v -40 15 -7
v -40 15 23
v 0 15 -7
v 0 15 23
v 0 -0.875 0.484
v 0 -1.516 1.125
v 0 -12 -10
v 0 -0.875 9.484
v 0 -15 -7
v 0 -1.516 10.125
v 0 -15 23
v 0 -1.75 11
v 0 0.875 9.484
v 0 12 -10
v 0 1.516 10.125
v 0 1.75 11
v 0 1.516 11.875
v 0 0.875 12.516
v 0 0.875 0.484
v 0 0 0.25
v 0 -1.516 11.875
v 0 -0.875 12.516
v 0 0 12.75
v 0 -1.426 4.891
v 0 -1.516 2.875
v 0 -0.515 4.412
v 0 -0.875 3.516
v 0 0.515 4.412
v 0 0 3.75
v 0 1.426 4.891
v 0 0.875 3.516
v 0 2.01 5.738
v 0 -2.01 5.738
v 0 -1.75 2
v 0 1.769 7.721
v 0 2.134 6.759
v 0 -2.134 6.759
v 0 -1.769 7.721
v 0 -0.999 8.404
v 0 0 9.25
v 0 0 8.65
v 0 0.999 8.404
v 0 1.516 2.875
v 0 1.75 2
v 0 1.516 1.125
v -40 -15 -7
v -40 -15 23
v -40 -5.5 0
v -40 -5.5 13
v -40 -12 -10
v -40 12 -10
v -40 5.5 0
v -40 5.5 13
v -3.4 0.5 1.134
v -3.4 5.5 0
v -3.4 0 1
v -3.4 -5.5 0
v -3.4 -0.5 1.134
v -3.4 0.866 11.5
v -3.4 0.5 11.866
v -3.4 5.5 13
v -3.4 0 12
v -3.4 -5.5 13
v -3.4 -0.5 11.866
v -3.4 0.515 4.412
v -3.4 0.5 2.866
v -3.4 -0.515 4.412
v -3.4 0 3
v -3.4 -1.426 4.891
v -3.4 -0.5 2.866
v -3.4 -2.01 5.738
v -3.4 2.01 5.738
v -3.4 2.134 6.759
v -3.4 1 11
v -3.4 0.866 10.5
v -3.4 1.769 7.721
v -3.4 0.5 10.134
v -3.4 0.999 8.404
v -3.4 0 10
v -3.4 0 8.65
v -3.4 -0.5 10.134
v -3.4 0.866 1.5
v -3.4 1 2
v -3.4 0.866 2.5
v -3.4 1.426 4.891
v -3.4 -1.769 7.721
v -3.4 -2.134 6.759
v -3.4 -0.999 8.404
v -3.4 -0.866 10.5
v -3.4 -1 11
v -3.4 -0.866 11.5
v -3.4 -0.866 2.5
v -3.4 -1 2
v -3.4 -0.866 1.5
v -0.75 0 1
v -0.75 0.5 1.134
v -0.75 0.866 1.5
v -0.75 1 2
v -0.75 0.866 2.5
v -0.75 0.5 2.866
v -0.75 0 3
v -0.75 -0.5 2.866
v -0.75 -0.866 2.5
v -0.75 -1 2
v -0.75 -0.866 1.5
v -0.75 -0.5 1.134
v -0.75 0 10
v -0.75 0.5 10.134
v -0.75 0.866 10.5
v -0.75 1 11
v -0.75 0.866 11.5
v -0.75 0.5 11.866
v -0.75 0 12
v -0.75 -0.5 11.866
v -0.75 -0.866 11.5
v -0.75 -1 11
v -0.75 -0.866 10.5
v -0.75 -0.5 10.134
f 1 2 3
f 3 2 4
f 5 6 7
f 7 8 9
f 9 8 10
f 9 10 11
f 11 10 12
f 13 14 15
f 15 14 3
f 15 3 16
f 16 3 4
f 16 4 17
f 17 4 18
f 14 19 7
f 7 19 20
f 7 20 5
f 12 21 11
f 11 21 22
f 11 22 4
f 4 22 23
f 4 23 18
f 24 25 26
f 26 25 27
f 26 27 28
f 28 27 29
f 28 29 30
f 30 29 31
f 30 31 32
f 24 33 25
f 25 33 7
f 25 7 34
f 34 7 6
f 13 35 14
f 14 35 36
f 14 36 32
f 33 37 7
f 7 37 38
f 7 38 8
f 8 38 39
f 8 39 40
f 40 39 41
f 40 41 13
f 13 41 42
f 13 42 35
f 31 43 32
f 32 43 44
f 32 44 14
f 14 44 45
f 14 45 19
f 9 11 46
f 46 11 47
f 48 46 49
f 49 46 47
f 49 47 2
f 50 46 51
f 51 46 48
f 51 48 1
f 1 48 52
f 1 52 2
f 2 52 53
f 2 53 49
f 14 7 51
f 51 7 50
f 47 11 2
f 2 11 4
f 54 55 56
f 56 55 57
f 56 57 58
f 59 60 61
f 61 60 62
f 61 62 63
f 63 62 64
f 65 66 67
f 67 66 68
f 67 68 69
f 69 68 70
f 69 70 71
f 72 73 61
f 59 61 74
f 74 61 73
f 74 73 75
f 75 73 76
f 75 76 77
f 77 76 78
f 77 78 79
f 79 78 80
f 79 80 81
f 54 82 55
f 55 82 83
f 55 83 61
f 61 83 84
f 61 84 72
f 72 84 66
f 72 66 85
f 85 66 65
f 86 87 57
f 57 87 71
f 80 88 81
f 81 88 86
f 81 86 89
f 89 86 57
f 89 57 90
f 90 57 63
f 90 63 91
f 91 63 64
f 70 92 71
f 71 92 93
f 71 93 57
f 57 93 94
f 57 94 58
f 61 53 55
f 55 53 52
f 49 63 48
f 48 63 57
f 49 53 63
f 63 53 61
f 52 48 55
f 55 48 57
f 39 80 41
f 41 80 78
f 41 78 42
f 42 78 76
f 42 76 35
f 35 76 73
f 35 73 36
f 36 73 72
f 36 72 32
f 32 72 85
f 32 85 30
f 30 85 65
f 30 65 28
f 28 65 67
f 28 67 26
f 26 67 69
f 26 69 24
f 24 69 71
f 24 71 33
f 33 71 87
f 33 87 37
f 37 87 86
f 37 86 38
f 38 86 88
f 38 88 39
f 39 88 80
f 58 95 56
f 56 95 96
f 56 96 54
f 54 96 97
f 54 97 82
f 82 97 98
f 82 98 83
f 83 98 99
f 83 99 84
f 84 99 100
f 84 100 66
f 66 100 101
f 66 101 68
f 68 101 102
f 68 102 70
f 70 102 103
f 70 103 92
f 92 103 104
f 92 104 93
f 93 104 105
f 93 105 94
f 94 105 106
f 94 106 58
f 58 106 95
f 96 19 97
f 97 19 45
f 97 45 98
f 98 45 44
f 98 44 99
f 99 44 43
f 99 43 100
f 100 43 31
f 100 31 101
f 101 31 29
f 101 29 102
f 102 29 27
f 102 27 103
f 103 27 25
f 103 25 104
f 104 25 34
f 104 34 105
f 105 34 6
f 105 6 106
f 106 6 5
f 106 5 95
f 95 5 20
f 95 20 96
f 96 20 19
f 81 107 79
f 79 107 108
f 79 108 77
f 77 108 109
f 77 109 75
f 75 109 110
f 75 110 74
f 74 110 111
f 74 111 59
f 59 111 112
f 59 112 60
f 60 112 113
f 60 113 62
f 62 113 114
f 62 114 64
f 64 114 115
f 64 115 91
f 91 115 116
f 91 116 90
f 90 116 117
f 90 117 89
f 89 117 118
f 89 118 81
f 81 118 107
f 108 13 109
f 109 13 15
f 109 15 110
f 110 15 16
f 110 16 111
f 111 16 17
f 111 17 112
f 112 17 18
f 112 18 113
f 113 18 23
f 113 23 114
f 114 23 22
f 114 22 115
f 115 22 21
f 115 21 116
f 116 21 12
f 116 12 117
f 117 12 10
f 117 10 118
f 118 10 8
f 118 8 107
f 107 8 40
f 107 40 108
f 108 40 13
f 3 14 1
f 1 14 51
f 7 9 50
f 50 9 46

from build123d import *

# Parameters (mm, degrees)
BOSS_EXTRUDE1_DEPTH                             = 23
BOSS_EXTRUDE1_DEPTH_BACK                        = 10
SKETCH1_W                                       = 40
SKETCH1_H                                       = 30
SKETCH1_5_W                                     = 36.6
SKETCH1_5_H                                     = 11
CUT_EXTRUDE1_DEPTH                              = 13
SKETCH2_R                                       = 2.15
CUT_EXTRUDE2_DEPTH                              = 46.755436835
CSK_FOR_M2_FLAT_HEAD_MACHINE_SCREW1_D           = 2
CSK_FOR_M2_FLAT_HEAD_MACHINE_SCREW1_CSINK_D     = 3.5
CSK_FOR_M2_FLAT_HEAD_MACHINE_SCREW1_CSINK_ANGLE = 90
CHAMFER1_SIZE                                   = 3


with BuildPart() as part:
    # Sketch1 → Boss-Extrude1 (new, two sides: drawn at the far end of the back side and taken through both)
    with BuildSketch(Plane.XY.offset(-BOSS_EXTRUDE1_DEPTH_BACK)):
        with Locations((-20, 0)):
            Rectangle(SKETCH1_W, SKETCH1_H)
    extrude(amount=BOSS_EXTRUDE1_DEPTH + BOSS_EXTRUDE1_DEPTH_BACK)

    # Sketch1<5> → Cut-Extrude1 (cut)
    with BuildSketch(Plane.XY):
        with Locations((-21.7, 0)):
            Rectangle(SKETCH1_5_W, SKETCH1_5_H)
    extrude(amount=CUT_EXTRUDE1_DEPTH, mode=Mode.SUBTRACT)

    # Sketch2 → Cut-Extrude2 (cut, through all)
    with BuildSketch(Plane.ZY.offset(3.4)):
        with Locations((6.5, 0)):
            Circle(SKETCH2_R)
    extrude(amount=-CUT_EXTRUDE2_DEPTH, mode=Mode.SUBTRACT)

    # CSK for M2 Flat Head Machine Screw1 (through all)
    with Locations(Plane(origin=(0, 0, 0), x_dir=(0, 0, -1), z_dir=(1, 0, 0))):
        with Locations((-11, 0), (-2, 0)):
            CounterSinkHole(CSK_FOR_M2_FLAT_HEAD_MACHINE_SCREW1_D / 2, CSK_FOR_M2_FLAT_HEAD_MACHINE_SCREW1_CSINK_D / 2, counter_sink_angle=CSK_FOR_M2_FLAT_HEAD_MACHINE_SCREW1_CSINK_ANGLE)

    # Chamfer1
    chamfer1_edges = [part.edges().sort_by_distance(p)[0] for p in [
        (-20, 15, -10),
        (-20, -15, -10),
    ]]
    chamfer(chamfer1_edges, length=CHAMFER1_SIZE)


solid = part.part
